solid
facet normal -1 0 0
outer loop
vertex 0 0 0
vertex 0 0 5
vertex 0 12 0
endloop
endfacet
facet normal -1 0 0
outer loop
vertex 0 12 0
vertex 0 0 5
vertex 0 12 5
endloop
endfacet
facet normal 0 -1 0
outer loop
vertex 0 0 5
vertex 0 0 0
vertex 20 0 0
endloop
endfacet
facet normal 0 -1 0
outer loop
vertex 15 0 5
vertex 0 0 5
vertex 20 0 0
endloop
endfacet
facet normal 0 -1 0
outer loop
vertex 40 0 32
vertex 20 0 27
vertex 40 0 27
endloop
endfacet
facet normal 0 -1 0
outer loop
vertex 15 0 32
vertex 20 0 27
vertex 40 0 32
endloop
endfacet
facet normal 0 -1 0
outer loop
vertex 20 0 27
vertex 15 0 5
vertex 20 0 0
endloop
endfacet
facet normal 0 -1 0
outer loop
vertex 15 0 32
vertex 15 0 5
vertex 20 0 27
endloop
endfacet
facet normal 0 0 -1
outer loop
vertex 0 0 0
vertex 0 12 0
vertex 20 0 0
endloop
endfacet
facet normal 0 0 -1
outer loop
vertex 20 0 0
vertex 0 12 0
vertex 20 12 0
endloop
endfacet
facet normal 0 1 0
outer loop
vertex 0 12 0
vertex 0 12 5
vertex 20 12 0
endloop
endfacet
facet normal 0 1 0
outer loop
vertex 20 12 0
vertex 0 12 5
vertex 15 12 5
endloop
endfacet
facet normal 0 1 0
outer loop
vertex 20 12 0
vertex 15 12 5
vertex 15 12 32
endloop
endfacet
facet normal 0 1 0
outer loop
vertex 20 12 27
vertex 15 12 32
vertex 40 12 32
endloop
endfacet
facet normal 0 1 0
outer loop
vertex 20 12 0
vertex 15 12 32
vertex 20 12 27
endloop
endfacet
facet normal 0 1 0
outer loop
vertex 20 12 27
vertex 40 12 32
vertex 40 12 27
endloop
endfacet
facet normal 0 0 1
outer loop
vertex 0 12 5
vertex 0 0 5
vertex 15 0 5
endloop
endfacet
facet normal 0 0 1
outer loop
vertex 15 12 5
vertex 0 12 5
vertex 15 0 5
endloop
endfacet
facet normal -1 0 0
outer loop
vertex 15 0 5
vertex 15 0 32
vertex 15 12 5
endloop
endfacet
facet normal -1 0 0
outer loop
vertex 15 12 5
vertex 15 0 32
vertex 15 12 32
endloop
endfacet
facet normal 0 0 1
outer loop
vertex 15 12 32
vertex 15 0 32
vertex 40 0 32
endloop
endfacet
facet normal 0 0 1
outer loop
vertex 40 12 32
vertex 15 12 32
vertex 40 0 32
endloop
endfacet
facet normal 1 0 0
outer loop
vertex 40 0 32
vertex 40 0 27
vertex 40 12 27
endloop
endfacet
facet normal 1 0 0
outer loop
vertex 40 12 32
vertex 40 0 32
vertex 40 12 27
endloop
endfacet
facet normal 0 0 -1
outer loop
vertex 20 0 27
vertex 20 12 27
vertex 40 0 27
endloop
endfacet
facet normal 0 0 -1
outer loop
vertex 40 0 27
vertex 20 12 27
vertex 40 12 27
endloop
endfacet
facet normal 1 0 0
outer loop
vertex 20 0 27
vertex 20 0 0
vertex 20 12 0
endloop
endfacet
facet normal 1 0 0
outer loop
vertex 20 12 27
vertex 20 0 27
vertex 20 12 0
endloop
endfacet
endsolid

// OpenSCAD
yWidth = 12;
union() {
// bottom
cube([20, yWidth, 5]);
// side brace
translate([15, 0, 0]) cube([5, yWidth, 32]);
// top
translate([15, 0, 27]) cube([25, yWidth, 5]);
}
